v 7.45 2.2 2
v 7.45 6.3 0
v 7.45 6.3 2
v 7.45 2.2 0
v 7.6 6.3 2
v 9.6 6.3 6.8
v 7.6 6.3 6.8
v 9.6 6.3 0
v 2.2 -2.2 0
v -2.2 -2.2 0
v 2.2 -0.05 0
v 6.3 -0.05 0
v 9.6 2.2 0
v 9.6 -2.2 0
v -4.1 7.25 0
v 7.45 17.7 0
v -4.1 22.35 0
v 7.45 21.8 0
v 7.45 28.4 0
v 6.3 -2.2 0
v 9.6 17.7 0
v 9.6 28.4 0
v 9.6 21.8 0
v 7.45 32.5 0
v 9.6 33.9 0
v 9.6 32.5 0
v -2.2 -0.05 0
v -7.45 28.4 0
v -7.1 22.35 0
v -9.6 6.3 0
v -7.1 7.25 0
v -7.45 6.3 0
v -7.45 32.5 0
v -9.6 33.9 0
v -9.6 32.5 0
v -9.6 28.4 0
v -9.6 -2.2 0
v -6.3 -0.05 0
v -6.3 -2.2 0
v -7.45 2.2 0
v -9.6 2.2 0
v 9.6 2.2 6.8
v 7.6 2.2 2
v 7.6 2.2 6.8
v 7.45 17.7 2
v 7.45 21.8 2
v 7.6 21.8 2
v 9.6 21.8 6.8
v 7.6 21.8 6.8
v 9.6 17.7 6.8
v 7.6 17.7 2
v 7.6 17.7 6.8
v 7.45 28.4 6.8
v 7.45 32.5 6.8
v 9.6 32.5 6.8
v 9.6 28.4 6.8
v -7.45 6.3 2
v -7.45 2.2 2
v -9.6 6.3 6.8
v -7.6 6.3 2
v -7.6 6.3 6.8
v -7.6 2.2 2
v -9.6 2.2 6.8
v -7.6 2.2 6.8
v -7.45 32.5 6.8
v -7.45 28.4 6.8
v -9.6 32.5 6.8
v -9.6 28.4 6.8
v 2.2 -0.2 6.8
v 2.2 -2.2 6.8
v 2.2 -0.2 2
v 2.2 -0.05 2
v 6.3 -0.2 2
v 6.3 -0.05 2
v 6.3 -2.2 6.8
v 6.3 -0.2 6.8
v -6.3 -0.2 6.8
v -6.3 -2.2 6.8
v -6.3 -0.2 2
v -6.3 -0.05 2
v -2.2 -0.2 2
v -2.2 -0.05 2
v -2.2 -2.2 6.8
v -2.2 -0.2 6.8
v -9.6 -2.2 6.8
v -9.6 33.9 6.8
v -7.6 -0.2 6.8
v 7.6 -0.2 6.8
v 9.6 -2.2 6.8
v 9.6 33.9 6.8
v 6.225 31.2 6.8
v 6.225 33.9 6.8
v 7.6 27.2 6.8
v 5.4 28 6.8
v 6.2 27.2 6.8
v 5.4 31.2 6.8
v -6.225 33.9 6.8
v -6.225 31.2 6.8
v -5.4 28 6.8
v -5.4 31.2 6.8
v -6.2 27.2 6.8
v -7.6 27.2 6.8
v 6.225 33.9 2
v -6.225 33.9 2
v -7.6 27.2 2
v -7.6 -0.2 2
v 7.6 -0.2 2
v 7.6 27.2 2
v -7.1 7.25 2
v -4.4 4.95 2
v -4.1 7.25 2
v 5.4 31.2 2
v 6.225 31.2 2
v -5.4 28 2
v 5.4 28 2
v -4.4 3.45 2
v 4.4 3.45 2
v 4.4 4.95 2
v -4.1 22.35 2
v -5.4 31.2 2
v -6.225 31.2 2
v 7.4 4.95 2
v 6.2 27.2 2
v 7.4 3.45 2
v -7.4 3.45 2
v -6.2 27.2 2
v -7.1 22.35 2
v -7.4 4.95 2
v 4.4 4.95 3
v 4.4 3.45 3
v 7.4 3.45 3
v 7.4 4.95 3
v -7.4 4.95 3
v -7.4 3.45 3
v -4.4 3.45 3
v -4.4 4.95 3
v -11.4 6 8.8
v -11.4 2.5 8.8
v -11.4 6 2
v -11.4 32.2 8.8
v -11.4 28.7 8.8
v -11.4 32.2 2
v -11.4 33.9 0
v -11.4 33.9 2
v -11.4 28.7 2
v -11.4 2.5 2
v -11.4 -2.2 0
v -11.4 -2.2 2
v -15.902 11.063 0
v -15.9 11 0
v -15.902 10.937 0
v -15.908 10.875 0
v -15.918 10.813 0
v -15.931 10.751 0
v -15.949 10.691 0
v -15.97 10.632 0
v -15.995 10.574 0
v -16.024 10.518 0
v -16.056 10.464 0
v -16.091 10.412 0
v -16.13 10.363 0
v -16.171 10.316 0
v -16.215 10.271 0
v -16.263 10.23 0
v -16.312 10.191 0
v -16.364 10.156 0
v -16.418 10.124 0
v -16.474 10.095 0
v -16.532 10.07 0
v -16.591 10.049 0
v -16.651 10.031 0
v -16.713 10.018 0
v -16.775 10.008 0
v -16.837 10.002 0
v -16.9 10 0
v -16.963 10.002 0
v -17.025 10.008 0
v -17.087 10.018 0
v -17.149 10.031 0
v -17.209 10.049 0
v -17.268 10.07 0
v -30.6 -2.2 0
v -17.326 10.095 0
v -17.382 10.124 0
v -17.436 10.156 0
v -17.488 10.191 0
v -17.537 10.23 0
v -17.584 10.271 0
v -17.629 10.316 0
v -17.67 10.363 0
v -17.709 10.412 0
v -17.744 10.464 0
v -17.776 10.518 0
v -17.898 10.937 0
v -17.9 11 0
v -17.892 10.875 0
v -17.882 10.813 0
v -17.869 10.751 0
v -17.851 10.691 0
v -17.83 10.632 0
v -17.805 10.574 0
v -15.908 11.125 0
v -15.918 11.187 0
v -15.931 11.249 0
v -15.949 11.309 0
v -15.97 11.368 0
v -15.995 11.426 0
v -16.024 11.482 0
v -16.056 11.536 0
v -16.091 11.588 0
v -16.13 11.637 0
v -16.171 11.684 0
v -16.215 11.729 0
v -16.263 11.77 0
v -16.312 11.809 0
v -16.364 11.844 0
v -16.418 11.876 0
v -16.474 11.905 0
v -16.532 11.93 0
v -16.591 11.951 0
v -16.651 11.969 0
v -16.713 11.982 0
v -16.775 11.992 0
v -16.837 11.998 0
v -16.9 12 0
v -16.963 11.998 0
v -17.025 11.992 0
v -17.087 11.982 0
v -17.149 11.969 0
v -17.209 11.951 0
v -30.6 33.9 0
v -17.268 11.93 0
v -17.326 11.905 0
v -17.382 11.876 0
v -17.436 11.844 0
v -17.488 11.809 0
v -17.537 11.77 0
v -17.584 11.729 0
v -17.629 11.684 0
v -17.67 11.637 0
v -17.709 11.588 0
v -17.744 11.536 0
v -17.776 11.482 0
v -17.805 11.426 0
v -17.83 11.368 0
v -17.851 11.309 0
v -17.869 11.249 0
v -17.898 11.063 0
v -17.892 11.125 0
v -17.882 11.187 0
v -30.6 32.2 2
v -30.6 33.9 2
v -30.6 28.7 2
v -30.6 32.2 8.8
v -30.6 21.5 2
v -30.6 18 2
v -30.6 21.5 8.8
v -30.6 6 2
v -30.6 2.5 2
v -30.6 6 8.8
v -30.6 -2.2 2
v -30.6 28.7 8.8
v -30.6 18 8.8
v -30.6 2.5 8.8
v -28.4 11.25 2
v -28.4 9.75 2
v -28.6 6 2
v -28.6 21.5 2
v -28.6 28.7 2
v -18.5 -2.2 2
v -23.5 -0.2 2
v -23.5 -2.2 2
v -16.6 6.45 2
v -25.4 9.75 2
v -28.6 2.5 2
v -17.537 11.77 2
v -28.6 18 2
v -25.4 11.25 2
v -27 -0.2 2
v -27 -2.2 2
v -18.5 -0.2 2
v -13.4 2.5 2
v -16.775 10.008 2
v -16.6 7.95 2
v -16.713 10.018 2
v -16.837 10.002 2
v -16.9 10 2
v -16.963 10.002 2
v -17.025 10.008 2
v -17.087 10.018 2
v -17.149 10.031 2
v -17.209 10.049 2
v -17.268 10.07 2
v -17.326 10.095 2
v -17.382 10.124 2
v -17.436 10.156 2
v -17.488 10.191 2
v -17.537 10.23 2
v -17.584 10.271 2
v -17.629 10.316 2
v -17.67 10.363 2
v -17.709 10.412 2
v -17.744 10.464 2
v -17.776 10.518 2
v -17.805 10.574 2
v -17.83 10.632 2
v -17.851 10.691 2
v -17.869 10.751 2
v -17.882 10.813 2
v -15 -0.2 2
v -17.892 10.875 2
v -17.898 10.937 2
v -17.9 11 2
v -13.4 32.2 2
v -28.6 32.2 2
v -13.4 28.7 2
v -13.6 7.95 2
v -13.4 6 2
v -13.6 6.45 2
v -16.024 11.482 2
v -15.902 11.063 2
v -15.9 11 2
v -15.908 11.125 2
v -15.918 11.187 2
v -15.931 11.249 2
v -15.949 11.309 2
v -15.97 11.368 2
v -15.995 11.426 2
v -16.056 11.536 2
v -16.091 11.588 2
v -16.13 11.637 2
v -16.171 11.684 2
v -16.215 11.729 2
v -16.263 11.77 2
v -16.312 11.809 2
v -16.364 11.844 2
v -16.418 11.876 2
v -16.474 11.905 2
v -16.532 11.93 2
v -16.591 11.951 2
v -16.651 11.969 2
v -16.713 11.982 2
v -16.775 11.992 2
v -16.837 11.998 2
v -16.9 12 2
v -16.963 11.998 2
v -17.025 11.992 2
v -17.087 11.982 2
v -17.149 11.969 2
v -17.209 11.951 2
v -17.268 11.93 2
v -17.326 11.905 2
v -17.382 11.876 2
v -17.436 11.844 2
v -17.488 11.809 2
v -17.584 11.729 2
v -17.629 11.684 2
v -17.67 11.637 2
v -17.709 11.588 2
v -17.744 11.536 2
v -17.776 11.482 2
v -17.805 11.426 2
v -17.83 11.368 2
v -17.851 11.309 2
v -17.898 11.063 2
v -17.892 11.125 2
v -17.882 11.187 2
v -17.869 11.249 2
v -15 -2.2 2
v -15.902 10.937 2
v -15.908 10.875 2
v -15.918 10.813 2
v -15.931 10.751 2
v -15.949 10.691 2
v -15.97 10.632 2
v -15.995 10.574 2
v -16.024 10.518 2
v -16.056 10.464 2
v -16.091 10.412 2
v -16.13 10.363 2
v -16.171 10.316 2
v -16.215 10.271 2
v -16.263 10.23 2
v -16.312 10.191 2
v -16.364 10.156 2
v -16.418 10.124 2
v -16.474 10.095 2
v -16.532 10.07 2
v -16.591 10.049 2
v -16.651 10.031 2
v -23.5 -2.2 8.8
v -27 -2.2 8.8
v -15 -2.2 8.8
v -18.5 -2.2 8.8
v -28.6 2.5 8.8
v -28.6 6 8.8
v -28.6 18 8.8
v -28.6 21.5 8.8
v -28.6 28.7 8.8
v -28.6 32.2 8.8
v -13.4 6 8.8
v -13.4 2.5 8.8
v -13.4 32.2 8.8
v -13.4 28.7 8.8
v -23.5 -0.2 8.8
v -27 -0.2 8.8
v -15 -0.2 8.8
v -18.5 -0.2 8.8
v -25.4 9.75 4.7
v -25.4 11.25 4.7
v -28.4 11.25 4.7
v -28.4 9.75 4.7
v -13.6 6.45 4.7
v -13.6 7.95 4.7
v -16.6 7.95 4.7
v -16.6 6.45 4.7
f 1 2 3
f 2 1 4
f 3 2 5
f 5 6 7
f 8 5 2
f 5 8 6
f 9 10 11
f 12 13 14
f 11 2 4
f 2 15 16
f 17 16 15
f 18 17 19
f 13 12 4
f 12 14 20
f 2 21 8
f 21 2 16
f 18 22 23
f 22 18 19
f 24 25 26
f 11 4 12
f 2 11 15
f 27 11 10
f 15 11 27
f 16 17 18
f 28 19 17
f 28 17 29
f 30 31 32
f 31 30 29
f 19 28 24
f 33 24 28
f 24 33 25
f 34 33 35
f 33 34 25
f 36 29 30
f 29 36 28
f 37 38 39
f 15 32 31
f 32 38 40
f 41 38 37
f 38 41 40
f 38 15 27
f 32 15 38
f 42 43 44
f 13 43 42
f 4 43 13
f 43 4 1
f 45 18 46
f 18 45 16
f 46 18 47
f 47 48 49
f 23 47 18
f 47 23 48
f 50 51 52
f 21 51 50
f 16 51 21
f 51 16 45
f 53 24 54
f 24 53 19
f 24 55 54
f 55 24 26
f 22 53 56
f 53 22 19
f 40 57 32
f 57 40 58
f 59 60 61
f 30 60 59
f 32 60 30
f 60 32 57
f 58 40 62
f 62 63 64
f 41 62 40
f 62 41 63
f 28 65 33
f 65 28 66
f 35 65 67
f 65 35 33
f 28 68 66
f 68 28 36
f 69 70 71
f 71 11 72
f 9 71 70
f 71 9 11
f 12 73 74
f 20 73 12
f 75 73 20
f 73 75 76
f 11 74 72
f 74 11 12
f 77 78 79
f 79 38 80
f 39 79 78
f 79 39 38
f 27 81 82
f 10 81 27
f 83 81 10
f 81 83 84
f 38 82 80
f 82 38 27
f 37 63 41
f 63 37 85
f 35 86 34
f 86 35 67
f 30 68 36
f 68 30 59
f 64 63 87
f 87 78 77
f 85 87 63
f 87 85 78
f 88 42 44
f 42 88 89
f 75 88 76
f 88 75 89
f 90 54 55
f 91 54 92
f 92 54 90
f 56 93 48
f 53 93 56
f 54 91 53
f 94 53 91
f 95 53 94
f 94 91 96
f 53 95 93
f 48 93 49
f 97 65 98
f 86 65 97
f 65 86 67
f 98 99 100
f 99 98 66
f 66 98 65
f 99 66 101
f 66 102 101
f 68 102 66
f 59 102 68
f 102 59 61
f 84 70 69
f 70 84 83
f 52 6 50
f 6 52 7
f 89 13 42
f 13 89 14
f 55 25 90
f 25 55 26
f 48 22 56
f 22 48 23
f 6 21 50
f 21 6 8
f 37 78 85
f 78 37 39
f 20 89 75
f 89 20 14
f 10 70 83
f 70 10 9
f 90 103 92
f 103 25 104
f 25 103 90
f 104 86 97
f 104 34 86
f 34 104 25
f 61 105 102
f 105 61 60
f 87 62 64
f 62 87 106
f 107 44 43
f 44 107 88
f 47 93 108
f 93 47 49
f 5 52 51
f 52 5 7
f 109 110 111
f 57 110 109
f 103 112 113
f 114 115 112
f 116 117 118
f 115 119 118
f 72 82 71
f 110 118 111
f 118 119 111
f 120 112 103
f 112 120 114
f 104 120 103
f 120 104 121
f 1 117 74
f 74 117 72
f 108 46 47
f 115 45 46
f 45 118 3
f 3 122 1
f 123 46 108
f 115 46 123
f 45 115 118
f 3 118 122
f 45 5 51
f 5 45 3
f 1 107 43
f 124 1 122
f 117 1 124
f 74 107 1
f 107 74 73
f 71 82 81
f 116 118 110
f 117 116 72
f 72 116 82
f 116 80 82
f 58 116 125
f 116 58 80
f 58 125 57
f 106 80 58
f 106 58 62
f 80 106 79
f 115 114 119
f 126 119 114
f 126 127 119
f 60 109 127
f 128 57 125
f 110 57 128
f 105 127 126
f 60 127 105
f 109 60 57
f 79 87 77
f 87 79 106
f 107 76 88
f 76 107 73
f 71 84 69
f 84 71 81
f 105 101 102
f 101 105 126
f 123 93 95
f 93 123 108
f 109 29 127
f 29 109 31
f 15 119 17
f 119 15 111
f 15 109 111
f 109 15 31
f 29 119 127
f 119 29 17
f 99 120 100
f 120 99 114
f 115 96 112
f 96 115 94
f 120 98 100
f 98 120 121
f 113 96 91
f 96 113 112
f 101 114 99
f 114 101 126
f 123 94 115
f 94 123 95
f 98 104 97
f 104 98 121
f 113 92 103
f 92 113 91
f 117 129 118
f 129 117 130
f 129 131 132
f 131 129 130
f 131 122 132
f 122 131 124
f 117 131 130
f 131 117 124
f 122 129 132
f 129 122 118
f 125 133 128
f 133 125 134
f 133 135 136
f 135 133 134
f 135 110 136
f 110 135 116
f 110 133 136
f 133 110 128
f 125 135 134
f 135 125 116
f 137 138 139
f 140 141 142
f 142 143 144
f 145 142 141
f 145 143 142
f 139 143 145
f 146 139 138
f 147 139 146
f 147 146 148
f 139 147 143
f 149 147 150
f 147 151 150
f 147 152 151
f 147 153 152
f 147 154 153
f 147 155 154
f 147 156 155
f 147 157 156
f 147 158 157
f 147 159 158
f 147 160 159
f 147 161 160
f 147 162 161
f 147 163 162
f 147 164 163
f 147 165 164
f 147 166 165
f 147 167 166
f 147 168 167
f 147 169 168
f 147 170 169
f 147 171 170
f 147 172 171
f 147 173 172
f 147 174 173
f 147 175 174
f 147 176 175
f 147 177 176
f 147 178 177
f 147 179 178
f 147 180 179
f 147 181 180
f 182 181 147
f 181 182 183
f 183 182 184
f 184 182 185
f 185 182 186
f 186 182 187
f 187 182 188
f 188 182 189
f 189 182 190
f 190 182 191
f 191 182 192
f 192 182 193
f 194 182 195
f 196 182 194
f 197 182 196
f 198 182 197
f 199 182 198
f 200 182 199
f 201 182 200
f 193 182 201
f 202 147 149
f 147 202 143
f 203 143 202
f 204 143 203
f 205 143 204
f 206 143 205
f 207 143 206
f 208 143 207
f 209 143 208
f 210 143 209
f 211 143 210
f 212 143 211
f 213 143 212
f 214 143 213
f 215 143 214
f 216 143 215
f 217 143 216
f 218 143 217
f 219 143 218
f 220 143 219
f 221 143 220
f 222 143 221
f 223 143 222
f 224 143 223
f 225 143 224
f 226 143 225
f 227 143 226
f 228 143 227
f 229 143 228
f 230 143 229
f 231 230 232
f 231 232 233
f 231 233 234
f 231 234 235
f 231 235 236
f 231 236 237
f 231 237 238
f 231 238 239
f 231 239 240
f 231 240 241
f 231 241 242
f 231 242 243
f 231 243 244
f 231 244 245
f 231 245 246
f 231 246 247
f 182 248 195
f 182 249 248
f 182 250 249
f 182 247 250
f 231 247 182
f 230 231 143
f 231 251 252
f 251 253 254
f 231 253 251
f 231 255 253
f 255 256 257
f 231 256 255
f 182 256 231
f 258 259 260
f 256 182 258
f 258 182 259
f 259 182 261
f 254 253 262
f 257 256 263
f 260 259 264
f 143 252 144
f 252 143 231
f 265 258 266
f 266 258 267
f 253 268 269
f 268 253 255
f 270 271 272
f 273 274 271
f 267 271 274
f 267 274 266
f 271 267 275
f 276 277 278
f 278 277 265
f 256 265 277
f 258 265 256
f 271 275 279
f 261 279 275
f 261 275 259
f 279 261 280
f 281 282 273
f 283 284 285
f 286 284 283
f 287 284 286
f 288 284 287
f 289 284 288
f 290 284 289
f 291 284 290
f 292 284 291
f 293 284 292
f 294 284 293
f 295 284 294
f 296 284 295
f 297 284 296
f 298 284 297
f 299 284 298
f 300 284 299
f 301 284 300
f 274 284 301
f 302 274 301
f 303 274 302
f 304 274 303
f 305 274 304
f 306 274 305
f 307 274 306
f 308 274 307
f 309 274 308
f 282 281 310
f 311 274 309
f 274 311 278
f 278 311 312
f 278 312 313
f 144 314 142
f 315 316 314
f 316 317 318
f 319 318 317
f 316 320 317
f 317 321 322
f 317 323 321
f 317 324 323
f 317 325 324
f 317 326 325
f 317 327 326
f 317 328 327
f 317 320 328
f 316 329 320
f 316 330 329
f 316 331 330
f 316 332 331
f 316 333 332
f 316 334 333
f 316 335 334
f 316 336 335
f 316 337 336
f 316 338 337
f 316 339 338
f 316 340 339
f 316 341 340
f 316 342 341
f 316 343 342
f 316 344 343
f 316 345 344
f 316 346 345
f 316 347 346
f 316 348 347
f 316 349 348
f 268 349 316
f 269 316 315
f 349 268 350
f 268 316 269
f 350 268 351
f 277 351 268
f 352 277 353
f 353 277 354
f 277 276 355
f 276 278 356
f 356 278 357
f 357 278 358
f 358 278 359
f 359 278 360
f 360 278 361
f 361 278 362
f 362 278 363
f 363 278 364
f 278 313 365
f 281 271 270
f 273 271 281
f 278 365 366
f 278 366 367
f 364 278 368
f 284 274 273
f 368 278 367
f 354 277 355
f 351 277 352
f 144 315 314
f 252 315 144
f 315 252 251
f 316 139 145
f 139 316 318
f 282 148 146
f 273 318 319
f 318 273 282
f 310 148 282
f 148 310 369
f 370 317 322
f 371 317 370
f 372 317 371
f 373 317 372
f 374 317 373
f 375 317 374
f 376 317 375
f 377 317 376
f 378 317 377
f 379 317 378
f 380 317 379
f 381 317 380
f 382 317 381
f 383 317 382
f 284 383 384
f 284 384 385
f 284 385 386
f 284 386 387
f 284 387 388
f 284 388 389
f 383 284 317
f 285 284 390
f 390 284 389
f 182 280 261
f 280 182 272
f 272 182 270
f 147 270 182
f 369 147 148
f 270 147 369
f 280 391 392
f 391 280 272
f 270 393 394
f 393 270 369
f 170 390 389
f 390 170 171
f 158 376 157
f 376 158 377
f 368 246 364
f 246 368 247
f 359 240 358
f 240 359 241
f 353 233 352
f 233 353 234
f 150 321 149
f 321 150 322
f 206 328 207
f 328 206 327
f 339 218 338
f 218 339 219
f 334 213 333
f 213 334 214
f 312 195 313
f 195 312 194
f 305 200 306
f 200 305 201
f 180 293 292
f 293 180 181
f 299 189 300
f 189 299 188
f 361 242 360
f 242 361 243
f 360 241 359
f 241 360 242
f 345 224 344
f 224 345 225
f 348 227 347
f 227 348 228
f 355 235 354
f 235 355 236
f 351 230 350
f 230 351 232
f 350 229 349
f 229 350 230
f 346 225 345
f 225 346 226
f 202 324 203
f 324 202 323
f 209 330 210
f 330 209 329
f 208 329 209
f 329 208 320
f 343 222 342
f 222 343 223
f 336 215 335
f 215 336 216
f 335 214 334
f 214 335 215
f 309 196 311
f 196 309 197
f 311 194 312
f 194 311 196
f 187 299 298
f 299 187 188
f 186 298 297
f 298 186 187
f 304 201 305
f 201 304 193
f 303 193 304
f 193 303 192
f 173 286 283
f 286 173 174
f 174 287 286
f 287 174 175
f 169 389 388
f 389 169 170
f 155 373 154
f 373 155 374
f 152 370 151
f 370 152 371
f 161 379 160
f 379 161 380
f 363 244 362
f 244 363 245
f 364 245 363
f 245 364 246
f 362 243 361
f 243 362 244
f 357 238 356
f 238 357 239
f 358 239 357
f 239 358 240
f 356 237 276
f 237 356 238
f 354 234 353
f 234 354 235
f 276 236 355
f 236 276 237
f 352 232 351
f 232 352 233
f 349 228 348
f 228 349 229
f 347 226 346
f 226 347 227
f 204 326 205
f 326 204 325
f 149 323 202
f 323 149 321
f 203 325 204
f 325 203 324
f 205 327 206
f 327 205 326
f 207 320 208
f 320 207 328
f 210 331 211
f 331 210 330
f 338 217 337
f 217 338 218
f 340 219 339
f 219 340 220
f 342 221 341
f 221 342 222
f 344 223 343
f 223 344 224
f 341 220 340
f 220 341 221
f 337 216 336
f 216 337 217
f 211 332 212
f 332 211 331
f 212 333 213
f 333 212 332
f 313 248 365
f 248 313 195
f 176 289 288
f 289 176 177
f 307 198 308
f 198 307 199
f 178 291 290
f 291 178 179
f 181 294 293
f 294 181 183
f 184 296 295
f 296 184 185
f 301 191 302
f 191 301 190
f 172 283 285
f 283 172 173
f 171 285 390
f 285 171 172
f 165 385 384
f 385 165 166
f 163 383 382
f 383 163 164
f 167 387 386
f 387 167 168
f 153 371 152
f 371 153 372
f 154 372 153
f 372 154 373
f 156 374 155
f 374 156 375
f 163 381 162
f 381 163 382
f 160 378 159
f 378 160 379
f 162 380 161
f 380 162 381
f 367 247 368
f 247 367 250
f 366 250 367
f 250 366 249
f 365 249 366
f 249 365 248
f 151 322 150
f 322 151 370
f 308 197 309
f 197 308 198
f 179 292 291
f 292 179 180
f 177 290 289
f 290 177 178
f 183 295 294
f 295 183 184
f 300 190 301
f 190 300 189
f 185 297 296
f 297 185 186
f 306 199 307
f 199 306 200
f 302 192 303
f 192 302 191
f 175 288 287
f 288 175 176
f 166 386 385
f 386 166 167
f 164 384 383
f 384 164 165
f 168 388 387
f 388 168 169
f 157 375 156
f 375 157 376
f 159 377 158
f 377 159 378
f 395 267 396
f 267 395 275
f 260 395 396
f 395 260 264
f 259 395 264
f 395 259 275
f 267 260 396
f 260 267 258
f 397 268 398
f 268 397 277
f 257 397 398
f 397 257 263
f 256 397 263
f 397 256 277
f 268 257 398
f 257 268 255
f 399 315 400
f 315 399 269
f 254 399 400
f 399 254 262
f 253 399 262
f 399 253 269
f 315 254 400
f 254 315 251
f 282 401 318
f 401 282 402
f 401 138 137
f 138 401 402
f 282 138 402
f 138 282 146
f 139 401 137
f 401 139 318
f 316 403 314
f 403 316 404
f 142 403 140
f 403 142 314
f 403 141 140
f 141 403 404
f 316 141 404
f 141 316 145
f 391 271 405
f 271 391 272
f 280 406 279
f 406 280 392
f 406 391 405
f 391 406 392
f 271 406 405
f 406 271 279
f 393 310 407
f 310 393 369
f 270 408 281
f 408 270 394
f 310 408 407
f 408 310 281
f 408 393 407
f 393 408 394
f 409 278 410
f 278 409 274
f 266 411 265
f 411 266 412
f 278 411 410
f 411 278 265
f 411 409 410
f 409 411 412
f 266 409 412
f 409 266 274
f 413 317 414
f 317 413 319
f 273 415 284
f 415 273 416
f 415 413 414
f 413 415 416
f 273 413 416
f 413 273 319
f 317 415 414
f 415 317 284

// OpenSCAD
$fn = 100;

pcbd_thick = 1.1;

// the main part of the dongle PCB
pcbw_x = 14.8;
pcbw_y = 27;

// the neck part of the dongle PCB
pcbn_x = 10.5;
pcbn_y = 4.2;

pcb_zoffset = 0.3;

// USB plug
plug_x = 12.15;
plug_y = 14.8;
plug_z = 5;

// USB plug neck
plugn_x = 9.6;
plugn_y = pcbn_y;
plugn_z = plug_z/2 + pcb_zoffset;

module flash_connector(flash_wigglex = 0, flash_wiggley = 0)
{
	// flashing connector
	flash_sizex = 2.4 + flash_wigglex;
	flash_sizey = 14.6 + flash_wiggley;
	flash_sizez = 5.6 - pcbd_thick;
	flash_posx = 0.6 - flash_wigglex/2;
	flash_posy = 22.1 - flash_sizey + flash_wiggley/2;

	translate([-pcbw_x/2 + flash_posx, flash_posy, -pcbd_thick/2 - flash_sizez])
		cube([flash_sizex, flash_sizey, flash_sizez]);
}

module dongle()
{
	// PCB main PCB
	translate([-pcbw_x/2, 0, -pcbd_thick/2])
		cube([pcbw_x, pcbw_y, pcbd_thick]);

	// PCB neck
	translate([-pcbn_x/2, pcbw_y, -pcbd_thick/2])
		cube([pcbn_x, pcbn_y, pcbd_thick]);

	// USB plug
	translate([-plug_x/2, pcbw_y+pcbn_y, -plug_z/2 + pcbd_thick/2 + pcb_zoffset])
		cube([plug_x, plug_y, plug_z]);
	translate([-plugn_x/2, pcbw_y, pcbd_thick/2])
		cube([plugn_x, plugn_y, plugn_z]);

	flash_connector();
}

pcb_wiggle = 0.4;
wall_thick = 2;

inside_x = pcbw_x + pcb_wiggle;
inside_y = pcbw_y + pcb_wiggle;
inside_z = 4.4 + pcb_wiggle;

module pegs(peg_wiggle = 0.0, thick_wiggle = 0.0)
{
	peg_length = 3.5;
	peg_height = inside_z + wall_thick + peg_wiggle;
	peg_z = -inside_z/2 - wall_thick + pcbd_thick/2 + pcb_zoffset;

	peg_height_flash = inside_z + peg_wiggle;
	peg_z_flash = -inside_z/2 + pcbd_thick/2 + pcb_zoffset;

	// pegs across the length
	peg1_y = 2.5;
	peg2_y = 18;
	peg3_y = 28.7;

	translate([inside_x/2 - thick_wiggle/2, peg1_y - peg_wiggle/2, peg_z])
		cube([wall_thick + thick_wiggle, peg_length + peg_wiggle, peg_height]);

	translate([inside_x/2 - thick_wiggle/2, peg2_y - peg_wiggle/2, peg_z])
		cube([wall_thick + thick_wiggle, peg_length + peg_wiggle, peg_height]);

	translate([inside_x/2 - thick_wiggle/2, peg3_y - peg_wiggle/2, peg_z])
		cube([wall_thick + thick_wiggle, peg_length + peg_wiggle, peg_height]);

	translate([-inside_x/2 - wall_thick - thick_wiggle/2, peg1_y - peg_wiggle/2, peg_z])
		cube([wall_thick + thick_wiggle, peg_length + peg_wiggle, peg_height]);

	translate([-inside_x/2 - wall_thick - thick_wiggle/2, peg3_y - peg_wiggle/2, peg_z])
		cube([wall_thick + thick_wiggle, peg_length + peg_wiggle, peg_height]);

	// pegs across the width
	peg4_x = 2.5;

	translate([peg4_x - peg_wiggle/2, -wall_thick - pcb_wiggle/2 - thick_wiggle/2, peg_z])
		cube([peg_length + peg_wiggle, wall_thick + thick_wiggle, peg_height]);
		
	translate([-peg4_x - peg_length - peg_wiggle/2, -wall_thick - pcb_wiggle/2 - thick_wiggle/2, peg_z])
		cube([peg_length + peg_wiggle, wall_thick + thick_wiggle, peg_height]);
}

case_x = inside_x + wall_thick*2;
case_y = inside_y + wall_thick + pcbn_y + 2.5;
case_z = inside_z + wall_thick*2;

module case_top()
{
	// the LED position
	led_x = 3.3;
	led_y = 11;

	difference()
	{
		translate([-case_x/2, -(pcb_wiggle/2 + wall_thick), inside_z/2 + pcbd_thick/2 + pcb_zoffset])
			cube([case_x, case_y, wall_thick]);

		// the LED hole
		translate([-pcbw_x/2 + led_x, led_y, inside_z/2 + pcbd_thick/2 + pcb_zoffset - 0.1])
			cylinder(wall_thick + 0.2, 1, 1);
	}

	// the stand-offs
	stdoff_thick = 1.5;
	stdoff_height = inside_z/2 + pcb_zoffset;
	stdoff_len = 3;
	stdoff_z = inside_z/2 + pcbd_thick/2 + pcb_zoffset - stdoff_height;

	stdoff1_y = 10.3;
	translate([pcbw_x/2 - stdoff_len, stdoff1_y + pcb_wiggle/2 - stdoff_thick/2, stdoff_z])
		cube([stdoff_len, stdoff_thick, stdoff_height]);

	stdoff3_y = 7;
	translate([-pcbw_x/2, stdoff3_y + pcb_wiggle/2 - stdoff_thick/2, stdoff_z])
		cube([stdoff_len, stdoff_thick, stdoff_height]);

	pegs();
}

module case_bottom(pw = 0.0, ptw = 0.0)
{
	difference()
	{
		translate([-case_x/2, -(pcb_wiggle/2 + wall_thick), -case_z/2 + pcbd_thick/2 + pcb_zoffset])
			cube([case_x, case_y, case_z - wall_thick]);

		translate([-inside_x/2, -pcb_wiggle/2, -inside_z/2 + pcbd_thick/2 + pcb_zoffset])
			cube([inside_x, inside_y, inside_z + 0.1]);

		// wiggle room for the flash connector
		flash_connector(flash_wigglex = 0.6, flash_wiggley = 0.5);

		neck_wigglex = 0.3;
		neck_wigglez = 0.2;

		// PCB and USB neck
		translate([-pcbn_x/2 - neck_wigglex/2, pcbw_y, -plug_z/2 + pcbd_thick/2 + pcb_wiggle])
			cube([pcbn_x + neck_wigglex, pcbn_y, plug_z]);

		// cut-offs for the round edge of the pcb neck
		cutoff = 0.8;
		translate([-pcbn_x/2 - neck_wigglex/2, pcbw_y + pcb_wiggle/2, -plug_z/2 + pcbd_thick/2 + pcb_wiggle])
			linear_extrude(height = plug_z)
				polygon([[0, 0], [-cutoff, 0], [0, cutoff]]);

		translate([pcbn_x/2 + neck_wigglex/2, pcbw_y + pcb_wiggle/2, -plug_z/2 + pcbd_thick/2 + pcb_wiggle])
			linear_extrude(height = plug_z)
				polygon([[0, 0], [cutoff, 0], [0, cutoff]]);
				
		// USB plug
		translate([-plug_x/2 - neck_wigglex/2, pcbw_y + pcbn_y, -plug_z/2 + pcbd_thick/2 + pcb_wiggle])
			cube([plug_x + neck_wigglex, plug_y, plug_z]);

		pegs(peg_wiggle = pw, thick_wiggle = ptw);
	}

	// the stand-offs
	stdoff_thick = 1.5;
	stdoff_height = inside_z/2 - pcb_zoffset - pcbd_thick;
	stdoff_len = 3;

	stdoff1_y = 4;
	translate([pcbw_x/2 - stdoff_len, stdoff1_y + pcb_wiggle/2 - stdoff_thick/2, -pcbd_thick/2 - stdoff_height])
		cube([stdoff_len, stdoff_thick, stdoff_height]);

	translate([-pcbw_x/2, stdoff1_y + pcb_wiggle/2 - stdoff_thick/2, -pcbd_thick/2 - stdoff_height])
		cube([stdoff_len, stdoff_thick, stdoff_height]);
}

translate([0, 0, case_z/2 - pcbd_thick/2 - pcb_zoffset])
	case_bottom(pw = 0.6, ptw = 0.3);

rotate([0, 180, 0])
	translate([21, 0, -case_z/2 - pcbd_thick/2 - pcb_zoffset])
	case_top();
